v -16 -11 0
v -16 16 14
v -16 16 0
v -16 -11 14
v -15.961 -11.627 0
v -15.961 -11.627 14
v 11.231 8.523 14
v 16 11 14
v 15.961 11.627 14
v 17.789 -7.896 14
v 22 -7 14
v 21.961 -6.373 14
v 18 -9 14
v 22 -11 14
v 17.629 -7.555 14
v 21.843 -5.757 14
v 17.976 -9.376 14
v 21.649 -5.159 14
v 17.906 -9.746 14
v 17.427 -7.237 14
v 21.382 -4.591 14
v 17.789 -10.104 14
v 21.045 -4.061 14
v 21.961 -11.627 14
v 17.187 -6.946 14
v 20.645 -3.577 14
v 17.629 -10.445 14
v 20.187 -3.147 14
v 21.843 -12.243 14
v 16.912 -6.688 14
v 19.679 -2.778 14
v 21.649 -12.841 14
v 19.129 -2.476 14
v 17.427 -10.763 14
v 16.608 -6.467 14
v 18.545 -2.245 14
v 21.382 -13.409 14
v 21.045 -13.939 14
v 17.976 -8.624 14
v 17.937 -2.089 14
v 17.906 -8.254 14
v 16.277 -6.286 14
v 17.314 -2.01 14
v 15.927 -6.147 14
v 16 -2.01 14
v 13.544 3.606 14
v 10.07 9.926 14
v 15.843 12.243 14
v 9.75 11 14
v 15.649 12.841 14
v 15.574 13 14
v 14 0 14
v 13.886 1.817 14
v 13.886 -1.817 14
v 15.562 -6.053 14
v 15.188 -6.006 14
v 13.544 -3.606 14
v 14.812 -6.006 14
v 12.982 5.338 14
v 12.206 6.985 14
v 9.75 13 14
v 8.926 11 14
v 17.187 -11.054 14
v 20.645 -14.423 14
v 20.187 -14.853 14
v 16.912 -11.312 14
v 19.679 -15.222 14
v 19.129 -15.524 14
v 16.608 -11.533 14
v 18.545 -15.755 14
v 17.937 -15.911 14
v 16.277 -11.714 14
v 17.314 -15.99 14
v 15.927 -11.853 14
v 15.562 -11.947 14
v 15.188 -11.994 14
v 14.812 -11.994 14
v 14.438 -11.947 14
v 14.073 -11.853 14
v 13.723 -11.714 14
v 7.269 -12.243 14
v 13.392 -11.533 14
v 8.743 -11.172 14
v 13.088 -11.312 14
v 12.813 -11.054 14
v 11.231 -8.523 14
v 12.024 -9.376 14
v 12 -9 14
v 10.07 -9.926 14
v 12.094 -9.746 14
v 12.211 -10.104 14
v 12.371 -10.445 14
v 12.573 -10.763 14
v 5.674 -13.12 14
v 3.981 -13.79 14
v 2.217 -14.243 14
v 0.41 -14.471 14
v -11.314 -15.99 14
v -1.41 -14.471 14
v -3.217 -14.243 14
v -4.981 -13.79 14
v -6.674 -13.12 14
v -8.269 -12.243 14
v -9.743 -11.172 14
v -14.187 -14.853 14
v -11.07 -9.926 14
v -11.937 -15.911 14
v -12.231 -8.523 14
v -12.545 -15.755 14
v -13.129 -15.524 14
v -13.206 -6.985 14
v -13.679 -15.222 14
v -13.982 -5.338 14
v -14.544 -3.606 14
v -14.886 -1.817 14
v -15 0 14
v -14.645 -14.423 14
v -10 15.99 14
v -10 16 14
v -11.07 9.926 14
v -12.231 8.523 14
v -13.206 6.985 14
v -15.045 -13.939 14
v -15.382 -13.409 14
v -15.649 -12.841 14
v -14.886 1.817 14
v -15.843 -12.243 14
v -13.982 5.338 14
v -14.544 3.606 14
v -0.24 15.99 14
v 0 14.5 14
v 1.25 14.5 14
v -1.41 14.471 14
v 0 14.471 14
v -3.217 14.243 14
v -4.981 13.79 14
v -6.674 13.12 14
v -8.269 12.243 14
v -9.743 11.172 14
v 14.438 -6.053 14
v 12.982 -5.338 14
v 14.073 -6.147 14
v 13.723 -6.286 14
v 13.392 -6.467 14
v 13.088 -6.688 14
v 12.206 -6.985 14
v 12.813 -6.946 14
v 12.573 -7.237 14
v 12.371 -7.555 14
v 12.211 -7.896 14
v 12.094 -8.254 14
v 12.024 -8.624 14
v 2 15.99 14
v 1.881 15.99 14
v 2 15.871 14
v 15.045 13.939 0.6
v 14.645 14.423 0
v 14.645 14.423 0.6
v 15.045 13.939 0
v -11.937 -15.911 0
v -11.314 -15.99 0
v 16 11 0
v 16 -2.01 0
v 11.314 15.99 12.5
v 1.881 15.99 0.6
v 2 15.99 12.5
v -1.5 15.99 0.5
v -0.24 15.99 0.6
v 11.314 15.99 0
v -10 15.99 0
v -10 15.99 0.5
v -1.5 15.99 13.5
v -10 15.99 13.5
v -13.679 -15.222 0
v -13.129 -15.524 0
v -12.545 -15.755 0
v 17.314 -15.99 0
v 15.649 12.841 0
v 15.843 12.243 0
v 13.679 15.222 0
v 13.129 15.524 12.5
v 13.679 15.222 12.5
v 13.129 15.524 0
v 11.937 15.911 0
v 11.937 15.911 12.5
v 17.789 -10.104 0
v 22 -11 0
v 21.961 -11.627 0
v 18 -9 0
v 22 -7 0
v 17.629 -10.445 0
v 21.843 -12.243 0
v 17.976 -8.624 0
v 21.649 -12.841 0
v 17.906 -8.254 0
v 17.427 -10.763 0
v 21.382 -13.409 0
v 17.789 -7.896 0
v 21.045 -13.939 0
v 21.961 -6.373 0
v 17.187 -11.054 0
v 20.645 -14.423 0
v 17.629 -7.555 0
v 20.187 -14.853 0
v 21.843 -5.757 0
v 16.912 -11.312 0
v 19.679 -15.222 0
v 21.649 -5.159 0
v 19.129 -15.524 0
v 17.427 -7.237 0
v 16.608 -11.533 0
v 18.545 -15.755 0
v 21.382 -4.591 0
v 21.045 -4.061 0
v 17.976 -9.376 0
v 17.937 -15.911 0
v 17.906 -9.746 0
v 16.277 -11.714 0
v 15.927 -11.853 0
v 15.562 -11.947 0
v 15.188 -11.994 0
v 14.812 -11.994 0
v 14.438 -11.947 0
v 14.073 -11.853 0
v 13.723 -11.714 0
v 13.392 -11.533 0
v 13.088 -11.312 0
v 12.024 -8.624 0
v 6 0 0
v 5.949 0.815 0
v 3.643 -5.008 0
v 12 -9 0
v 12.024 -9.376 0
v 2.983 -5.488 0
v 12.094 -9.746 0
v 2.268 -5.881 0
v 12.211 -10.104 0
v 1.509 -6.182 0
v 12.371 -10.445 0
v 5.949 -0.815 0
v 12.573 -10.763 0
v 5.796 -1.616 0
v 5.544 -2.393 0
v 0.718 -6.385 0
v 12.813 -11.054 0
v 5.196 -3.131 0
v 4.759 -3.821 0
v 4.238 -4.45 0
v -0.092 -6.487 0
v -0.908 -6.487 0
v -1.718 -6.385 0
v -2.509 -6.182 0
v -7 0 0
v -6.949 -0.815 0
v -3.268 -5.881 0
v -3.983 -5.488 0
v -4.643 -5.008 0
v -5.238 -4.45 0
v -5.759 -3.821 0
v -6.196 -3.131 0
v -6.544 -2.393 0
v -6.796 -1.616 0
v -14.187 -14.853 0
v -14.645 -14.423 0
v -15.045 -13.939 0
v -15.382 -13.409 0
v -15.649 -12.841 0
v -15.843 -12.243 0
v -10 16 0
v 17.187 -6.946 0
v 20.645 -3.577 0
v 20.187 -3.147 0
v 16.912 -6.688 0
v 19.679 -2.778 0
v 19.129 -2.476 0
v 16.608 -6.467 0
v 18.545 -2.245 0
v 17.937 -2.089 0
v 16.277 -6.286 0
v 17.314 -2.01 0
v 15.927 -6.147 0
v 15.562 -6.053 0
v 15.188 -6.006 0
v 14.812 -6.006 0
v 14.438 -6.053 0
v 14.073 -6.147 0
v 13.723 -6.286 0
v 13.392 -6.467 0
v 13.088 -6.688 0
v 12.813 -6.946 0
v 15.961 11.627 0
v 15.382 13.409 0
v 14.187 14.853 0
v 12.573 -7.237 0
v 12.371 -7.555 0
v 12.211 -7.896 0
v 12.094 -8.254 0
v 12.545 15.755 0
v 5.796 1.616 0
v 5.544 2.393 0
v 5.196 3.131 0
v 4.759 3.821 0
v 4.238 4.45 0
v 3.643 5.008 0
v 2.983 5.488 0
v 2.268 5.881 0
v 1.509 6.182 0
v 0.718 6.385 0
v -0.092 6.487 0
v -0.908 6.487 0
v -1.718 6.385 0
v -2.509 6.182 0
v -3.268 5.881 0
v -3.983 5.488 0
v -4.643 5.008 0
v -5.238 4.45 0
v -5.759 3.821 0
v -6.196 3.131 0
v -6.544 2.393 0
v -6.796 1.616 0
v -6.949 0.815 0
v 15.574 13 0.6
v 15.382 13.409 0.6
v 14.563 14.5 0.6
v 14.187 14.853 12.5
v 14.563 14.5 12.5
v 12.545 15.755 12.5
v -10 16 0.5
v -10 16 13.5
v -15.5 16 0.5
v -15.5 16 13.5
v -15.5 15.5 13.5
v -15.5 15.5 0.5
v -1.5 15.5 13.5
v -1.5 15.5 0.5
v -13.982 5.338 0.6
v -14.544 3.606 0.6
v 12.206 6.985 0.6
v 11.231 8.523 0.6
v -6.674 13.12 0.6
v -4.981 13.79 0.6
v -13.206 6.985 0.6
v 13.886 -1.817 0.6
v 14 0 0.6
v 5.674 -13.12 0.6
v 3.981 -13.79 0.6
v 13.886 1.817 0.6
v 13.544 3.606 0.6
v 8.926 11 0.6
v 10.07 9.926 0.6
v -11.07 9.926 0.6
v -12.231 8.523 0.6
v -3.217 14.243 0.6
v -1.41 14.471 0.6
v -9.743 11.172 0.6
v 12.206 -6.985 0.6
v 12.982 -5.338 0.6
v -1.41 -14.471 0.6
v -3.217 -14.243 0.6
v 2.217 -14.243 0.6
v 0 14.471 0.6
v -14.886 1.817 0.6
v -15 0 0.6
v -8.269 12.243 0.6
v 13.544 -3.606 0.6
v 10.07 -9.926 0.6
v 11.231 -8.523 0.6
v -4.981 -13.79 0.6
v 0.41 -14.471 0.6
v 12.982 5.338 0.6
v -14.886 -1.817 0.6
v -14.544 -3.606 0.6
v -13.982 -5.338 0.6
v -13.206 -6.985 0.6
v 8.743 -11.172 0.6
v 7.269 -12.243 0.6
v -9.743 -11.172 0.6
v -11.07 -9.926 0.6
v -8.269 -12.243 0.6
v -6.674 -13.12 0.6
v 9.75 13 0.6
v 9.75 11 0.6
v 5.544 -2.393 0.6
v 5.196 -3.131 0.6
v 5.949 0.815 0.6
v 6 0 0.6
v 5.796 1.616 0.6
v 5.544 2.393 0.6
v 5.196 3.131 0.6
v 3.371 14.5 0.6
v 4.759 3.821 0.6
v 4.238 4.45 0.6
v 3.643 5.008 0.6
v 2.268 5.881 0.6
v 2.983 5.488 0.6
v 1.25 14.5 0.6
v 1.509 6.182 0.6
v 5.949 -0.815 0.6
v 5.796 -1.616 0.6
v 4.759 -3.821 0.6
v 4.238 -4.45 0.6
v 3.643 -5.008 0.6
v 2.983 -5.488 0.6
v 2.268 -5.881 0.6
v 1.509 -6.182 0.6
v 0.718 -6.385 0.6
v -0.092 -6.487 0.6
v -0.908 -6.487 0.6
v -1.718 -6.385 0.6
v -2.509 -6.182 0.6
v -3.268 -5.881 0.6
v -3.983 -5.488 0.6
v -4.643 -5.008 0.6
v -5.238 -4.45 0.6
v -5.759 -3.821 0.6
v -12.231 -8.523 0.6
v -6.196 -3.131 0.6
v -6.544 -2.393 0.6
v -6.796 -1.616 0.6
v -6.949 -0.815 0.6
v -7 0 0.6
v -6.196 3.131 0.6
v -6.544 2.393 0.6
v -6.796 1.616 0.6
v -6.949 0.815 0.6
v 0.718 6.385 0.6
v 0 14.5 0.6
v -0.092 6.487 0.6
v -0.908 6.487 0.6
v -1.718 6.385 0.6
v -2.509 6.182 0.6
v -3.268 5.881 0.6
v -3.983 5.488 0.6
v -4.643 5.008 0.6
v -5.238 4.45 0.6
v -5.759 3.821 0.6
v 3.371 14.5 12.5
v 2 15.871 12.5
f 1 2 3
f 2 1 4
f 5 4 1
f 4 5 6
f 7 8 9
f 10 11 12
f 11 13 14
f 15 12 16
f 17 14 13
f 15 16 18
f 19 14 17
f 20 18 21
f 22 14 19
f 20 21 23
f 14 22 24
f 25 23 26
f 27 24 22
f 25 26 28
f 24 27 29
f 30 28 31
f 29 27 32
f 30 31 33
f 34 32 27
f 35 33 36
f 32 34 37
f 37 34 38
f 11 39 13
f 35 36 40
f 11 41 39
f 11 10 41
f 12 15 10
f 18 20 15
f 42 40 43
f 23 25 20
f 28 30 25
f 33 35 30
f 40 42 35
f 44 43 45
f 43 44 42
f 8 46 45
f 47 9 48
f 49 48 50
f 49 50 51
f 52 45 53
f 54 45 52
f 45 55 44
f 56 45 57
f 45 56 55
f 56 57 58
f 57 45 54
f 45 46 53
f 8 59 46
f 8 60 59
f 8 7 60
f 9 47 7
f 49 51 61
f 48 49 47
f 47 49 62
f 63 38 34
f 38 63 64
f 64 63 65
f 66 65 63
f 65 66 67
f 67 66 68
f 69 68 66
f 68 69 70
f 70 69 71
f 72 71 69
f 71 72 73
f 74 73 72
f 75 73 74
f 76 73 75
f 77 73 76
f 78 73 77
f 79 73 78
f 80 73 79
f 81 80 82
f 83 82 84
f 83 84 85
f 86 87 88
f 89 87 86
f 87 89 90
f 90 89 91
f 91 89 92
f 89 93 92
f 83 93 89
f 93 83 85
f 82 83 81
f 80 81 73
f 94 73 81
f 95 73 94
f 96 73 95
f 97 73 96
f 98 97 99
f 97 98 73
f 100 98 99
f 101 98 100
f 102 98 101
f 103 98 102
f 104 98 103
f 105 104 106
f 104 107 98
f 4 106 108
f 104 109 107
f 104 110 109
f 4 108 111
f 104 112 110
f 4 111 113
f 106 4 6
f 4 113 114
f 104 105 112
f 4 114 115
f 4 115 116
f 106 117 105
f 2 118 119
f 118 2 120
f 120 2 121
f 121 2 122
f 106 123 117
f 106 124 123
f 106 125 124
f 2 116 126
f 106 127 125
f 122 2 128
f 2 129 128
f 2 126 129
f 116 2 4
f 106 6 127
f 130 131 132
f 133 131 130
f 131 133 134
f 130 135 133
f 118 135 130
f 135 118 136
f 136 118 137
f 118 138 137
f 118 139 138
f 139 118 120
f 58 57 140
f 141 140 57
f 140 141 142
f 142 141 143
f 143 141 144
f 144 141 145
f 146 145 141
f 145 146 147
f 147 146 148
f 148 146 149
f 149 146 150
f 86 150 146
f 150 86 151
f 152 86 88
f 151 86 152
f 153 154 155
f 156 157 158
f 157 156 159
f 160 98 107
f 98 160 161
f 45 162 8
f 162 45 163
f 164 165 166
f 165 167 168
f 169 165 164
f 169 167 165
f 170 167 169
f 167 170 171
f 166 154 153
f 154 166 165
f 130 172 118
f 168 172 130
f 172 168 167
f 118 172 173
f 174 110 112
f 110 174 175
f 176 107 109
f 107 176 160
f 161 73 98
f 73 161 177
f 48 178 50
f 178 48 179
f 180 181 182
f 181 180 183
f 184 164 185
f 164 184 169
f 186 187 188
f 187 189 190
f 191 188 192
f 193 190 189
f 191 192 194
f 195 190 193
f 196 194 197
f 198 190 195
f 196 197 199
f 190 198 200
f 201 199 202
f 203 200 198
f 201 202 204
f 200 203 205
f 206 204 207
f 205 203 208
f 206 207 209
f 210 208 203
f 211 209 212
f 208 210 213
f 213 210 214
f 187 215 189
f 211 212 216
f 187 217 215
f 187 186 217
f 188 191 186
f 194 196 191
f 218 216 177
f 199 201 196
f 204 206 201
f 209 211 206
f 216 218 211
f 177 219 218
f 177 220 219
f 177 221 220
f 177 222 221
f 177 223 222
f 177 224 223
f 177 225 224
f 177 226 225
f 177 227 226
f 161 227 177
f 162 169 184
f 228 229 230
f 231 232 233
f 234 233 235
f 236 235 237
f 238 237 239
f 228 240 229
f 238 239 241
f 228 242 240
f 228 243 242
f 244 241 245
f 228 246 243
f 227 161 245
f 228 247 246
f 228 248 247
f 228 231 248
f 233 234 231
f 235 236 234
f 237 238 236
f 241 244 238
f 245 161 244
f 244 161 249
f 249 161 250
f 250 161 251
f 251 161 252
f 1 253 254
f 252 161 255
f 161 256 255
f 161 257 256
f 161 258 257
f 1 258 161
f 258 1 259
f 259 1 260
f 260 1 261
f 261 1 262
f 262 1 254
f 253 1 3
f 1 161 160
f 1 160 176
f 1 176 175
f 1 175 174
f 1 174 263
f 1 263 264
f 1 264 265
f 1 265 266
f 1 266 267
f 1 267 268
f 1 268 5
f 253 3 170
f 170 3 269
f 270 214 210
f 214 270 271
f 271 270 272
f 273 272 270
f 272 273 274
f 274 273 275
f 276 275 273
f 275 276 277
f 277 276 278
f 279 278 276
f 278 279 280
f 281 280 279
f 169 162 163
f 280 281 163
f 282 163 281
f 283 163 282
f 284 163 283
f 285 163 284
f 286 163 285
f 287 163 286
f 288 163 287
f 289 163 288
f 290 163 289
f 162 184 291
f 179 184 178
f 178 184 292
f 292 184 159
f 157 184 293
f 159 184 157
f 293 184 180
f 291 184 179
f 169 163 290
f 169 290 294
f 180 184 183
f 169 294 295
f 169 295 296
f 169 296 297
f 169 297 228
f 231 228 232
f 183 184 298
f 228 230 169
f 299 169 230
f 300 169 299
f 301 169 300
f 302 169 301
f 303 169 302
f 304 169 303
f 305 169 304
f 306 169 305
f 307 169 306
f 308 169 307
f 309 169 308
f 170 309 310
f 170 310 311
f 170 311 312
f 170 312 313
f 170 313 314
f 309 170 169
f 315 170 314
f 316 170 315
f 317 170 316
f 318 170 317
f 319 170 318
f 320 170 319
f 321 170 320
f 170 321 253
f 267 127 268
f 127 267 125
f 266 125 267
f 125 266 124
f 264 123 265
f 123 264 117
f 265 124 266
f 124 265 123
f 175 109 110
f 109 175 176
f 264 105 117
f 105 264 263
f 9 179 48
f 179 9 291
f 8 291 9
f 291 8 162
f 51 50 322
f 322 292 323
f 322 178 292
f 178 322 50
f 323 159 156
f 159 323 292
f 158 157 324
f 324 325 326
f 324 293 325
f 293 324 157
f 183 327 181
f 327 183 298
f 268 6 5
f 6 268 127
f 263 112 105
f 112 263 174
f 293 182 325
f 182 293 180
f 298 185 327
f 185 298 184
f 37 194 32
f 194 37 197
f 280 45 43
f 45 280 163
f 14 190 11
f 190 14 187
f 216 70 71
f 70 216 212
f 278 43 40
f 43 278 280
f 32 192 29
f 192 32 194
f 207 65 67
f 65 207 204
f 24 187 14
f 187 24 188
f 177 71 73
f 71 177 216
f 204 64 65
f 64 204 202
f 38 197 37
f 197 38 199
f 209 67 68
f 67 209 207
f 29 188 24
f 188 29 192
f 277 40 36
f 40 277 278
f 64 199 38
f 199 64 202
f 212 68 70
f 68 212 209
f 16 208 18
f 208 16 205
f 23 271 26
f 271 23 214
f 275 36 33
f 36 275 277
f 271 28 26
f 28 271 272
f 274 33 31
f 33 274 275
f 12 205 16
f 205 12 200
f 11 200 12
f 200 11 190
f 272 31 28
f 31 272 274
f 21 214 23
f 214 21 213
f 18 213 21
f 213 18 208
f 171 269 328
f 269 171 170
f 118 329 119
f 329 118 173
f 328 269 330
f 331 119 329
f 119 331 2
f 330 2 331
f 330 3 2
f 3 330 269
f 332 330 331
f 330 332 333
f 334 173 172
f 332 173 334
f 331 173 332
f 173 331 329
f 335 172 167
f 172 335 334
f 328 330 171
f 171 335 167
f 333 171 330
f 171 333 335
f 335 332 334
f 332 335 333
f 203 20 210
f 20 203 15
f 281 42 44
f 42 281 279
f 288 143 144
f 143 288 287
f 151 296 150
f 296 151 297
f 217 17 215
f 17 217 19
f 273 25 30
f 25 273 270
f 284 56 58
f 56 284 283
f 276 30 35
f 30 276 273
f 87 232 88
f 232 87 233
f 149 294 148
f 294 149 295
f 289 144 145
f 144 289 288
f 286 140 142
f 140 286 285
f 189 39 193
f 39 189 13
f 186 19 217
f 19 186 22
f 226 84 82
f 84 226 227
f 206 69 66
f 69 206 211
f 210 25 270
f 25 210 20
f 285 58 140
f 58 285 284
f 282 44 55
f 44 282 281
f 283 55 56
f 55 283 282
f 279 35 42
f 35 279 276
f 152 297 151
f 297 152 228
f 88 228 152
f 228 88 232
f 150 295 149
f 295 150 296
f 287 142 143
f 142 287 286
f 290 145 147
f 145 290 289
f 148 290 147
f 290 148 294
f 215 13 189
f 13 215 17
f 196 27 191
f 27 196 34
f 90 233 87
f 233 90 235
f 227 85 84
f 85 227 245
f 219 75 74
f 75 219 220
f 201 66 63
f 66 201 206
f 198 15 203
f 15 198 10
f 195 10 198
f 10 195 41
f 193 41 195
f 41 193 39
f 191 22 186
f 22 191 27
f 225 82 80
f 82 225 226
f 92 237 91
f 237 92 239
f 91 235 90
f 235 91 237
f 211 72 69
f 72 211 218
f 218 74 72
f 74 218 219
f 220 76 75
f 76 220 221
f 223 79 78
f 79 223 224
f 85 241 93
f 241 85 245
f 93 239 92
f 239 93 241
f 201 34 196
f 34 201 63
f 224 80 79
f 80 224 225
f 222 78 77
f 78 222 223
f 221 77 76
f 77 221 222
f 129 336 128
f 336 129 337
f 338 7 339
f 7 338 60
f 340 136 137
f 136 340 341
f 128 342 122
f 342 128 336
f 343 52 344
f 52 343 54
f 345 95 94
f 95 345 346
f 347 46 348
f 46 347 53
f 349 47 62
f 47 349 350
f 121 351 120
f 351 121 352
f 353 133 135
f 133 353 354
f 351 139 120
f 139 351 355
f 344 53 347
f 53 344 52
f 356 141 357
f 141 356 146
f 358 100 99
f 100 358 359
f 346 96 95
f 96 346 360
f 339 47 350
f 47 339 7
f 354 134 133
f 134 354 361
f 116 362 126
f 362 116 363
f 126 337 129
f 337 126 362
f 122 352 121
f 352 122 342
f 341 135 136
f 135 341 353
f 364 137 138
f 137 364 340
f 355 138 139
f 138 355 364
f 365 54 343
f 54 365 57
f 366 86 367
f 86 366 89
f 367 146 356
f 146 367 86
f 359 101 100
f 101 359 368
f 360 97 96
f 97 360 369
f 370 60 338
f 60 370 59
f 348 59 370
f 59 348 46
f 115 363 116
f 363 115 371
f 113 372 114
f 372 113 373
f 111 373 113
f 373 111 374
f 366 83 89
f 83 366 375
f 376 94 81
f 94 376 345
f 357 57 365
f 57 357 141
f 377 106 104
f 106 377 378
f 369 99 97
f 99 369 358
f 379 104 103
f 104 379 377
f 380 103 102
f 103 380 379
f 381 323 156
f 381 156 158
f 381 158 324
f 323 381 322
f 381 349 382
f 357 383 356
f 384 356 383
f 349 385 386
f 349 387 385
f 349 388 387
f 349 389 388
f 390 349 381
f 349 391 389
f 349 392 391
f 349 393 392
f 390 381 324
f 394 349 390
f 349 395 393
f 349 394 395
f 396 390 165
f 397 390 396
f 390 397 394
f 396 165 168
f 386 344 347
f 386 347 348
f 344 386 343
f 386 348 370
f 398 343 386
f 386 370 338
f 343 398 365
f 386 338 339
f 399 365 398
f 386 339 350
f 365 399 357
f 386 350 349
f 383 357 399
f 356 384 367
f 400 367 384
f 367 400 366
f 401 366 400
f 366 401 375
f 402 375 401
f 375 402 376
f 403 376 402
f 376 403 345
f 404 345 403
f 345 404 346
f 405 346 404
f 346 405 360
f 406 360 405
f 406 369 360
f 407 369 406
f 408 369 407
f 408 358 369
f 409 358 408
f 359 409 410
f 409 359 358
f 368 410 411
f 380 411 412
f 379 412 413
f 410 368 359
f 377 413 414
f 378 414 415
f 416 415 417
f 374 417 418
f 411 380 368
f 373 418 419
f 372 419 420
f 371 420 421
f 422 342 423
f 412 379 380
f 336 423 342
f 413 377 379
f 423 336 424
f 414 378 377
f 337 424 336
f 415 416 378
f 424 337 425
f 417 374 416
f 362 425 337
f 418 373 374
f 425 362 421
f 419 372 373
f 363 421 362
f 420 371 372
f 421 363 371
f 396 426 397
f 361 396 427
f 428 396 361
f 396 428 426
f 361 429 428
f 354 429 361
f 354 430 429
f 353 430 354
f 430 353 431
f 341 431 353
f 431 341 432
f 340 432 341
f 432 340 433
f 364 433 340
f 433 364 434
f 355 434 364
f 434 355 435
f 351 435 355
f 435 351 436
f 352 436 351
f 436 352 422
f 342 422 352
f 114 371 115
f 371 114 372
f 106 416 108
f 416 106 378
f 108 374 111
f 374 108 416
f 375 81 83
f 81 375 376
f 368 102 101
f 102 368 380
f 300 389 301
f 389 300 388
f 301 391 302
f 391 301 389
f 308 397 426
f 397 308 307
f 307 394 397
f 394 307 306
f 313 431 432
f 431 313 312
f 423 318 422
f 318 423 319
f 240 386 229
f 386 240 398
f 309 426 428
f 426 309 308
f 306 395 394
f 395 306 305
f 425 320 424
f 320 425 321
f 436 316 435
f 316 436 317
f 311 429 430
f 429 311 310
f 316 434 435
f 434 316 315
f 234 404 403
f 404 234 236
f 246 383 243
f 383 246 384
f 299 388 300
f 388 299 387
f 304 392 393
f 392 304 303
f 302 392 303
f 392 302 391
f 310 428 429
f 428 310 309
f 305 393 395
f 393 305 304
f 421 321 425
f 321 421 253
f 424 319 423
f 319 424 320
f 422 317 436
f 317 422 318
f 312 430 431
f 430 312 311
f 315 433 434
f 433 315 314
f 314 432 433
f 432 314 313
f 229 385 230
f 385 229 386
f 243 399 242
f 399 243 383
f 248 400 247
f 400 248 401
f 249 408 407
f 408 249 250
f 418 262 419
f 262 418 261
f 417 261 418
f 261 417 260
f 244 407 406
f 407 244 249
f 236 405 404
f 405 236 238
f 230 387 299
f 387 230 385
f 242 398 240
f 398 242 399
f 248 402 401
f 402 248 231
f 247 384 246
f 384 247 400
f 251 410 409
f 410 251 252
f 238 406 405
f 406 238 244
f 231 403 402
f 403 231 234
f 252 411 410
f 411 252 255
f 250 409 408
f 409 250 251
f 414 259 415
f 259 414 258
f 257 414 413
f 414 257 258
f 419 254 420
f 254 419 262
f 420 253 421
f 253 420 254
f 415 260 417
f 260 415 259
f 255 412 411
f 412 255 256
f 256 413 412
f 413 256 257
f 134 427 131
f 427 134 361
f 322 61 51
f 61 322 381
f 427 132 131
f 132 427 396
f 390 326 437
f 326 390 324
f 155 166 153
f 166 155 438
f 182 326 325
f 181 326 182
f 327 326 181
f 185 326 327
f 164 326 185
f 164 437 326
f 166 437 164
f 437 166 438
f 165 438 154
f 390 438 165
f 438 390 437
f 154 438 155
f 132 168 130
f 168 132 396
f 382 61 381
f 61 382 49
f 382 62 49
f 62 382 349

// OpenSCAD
$fn = 50;


difference() {
	union() {
		hull() {
			translate(v = [-11.0000000000, 11.0000000000, 0]) {
				cylinder(h = 14, r = 5);
			}
			translate(v = [11.0000000000, 11.0000000000, 0]) {
				cylinder(h = 14, r = 5);
			}
			translate(v = [-11.0000000000, -11.0000000000, 0]) {
				cylinder(h = 14, r = 5);
			}
			translate(v = [11.0000000000, -11.0000000000, 0]) {
				cylinder(h = 14, r = 5);
			}
		}
		translate(v = [7.5000000000, -9.0000000000, 0]) {
			hull() {
				translate(v = [-9.5000000000, 2.0000000000, 0]) {
					cylinder(h = 14, r = 5);
				}
				translate(v = [9.5000000000, 2.0000000000, 0]) {
					cylinder(h = 14, r = 5);
				}
				translate(v = [-9.5000000000, -2.0000000000, 0]) {
					cylinder(h = 14, r = 5);
				}
				translate(v = [9.5000000000, -2.0000000000, 0]) {
					cylinder(h = 14, r = 5);
				}
			}
		}
		translate(v = [-16.0000000000, 10.0000000000, 0]) {
			cube(size = [6, 6, 14]);
		}
	}
	union() {
		translate(v = [-15.5000000000, 15.5000000000, 0.5000000000]) {
			cube(size = [14, 0.5000000000, 13.0000000000]);
		}
		translate(v = [15.0000000000, -9.0000000000, -50.0000000000]) {
			cylinder(h = 100, r = 3.0000000000);
		}
		translate(v = [-0.5000000000, 0.0000000000, 0.6000000000]) {
			cylinder(h = 16.4000000000, r = 14.5000000000);
		}
		translate(v = [-0.5000000000, 0.0000000000, -7.0000000000]) {
			cylinder(h = 14, r = 6.5000000000);
		}
		translate(v = [0.0000000000, 13.0000000000, 0.6000000000]) {
			cube(size = [16.0000000000, 1.5000000000, 16.4000000000]);
		}
		translate(v = [2.0000000000, 13.0000000000, 12.5000000000]) {
			cube(size = [14.0000000000, 4.5000000000, 1.5000000000]);
		}
		translate(v = [-3.0000000000, 18.7500000000, 0.6000000000]) {
			rotate(a = [0, 0, -45]) {
				cube(size = [10, 1.5000000000, 16.4000000000]);
			}
		}
		translate(v = [2.2500000000, 11.0000000000, 0.6000000000]) {
			cube(size = [7.5000000000, 2, 13.4000000000]);
		}
	}
}
